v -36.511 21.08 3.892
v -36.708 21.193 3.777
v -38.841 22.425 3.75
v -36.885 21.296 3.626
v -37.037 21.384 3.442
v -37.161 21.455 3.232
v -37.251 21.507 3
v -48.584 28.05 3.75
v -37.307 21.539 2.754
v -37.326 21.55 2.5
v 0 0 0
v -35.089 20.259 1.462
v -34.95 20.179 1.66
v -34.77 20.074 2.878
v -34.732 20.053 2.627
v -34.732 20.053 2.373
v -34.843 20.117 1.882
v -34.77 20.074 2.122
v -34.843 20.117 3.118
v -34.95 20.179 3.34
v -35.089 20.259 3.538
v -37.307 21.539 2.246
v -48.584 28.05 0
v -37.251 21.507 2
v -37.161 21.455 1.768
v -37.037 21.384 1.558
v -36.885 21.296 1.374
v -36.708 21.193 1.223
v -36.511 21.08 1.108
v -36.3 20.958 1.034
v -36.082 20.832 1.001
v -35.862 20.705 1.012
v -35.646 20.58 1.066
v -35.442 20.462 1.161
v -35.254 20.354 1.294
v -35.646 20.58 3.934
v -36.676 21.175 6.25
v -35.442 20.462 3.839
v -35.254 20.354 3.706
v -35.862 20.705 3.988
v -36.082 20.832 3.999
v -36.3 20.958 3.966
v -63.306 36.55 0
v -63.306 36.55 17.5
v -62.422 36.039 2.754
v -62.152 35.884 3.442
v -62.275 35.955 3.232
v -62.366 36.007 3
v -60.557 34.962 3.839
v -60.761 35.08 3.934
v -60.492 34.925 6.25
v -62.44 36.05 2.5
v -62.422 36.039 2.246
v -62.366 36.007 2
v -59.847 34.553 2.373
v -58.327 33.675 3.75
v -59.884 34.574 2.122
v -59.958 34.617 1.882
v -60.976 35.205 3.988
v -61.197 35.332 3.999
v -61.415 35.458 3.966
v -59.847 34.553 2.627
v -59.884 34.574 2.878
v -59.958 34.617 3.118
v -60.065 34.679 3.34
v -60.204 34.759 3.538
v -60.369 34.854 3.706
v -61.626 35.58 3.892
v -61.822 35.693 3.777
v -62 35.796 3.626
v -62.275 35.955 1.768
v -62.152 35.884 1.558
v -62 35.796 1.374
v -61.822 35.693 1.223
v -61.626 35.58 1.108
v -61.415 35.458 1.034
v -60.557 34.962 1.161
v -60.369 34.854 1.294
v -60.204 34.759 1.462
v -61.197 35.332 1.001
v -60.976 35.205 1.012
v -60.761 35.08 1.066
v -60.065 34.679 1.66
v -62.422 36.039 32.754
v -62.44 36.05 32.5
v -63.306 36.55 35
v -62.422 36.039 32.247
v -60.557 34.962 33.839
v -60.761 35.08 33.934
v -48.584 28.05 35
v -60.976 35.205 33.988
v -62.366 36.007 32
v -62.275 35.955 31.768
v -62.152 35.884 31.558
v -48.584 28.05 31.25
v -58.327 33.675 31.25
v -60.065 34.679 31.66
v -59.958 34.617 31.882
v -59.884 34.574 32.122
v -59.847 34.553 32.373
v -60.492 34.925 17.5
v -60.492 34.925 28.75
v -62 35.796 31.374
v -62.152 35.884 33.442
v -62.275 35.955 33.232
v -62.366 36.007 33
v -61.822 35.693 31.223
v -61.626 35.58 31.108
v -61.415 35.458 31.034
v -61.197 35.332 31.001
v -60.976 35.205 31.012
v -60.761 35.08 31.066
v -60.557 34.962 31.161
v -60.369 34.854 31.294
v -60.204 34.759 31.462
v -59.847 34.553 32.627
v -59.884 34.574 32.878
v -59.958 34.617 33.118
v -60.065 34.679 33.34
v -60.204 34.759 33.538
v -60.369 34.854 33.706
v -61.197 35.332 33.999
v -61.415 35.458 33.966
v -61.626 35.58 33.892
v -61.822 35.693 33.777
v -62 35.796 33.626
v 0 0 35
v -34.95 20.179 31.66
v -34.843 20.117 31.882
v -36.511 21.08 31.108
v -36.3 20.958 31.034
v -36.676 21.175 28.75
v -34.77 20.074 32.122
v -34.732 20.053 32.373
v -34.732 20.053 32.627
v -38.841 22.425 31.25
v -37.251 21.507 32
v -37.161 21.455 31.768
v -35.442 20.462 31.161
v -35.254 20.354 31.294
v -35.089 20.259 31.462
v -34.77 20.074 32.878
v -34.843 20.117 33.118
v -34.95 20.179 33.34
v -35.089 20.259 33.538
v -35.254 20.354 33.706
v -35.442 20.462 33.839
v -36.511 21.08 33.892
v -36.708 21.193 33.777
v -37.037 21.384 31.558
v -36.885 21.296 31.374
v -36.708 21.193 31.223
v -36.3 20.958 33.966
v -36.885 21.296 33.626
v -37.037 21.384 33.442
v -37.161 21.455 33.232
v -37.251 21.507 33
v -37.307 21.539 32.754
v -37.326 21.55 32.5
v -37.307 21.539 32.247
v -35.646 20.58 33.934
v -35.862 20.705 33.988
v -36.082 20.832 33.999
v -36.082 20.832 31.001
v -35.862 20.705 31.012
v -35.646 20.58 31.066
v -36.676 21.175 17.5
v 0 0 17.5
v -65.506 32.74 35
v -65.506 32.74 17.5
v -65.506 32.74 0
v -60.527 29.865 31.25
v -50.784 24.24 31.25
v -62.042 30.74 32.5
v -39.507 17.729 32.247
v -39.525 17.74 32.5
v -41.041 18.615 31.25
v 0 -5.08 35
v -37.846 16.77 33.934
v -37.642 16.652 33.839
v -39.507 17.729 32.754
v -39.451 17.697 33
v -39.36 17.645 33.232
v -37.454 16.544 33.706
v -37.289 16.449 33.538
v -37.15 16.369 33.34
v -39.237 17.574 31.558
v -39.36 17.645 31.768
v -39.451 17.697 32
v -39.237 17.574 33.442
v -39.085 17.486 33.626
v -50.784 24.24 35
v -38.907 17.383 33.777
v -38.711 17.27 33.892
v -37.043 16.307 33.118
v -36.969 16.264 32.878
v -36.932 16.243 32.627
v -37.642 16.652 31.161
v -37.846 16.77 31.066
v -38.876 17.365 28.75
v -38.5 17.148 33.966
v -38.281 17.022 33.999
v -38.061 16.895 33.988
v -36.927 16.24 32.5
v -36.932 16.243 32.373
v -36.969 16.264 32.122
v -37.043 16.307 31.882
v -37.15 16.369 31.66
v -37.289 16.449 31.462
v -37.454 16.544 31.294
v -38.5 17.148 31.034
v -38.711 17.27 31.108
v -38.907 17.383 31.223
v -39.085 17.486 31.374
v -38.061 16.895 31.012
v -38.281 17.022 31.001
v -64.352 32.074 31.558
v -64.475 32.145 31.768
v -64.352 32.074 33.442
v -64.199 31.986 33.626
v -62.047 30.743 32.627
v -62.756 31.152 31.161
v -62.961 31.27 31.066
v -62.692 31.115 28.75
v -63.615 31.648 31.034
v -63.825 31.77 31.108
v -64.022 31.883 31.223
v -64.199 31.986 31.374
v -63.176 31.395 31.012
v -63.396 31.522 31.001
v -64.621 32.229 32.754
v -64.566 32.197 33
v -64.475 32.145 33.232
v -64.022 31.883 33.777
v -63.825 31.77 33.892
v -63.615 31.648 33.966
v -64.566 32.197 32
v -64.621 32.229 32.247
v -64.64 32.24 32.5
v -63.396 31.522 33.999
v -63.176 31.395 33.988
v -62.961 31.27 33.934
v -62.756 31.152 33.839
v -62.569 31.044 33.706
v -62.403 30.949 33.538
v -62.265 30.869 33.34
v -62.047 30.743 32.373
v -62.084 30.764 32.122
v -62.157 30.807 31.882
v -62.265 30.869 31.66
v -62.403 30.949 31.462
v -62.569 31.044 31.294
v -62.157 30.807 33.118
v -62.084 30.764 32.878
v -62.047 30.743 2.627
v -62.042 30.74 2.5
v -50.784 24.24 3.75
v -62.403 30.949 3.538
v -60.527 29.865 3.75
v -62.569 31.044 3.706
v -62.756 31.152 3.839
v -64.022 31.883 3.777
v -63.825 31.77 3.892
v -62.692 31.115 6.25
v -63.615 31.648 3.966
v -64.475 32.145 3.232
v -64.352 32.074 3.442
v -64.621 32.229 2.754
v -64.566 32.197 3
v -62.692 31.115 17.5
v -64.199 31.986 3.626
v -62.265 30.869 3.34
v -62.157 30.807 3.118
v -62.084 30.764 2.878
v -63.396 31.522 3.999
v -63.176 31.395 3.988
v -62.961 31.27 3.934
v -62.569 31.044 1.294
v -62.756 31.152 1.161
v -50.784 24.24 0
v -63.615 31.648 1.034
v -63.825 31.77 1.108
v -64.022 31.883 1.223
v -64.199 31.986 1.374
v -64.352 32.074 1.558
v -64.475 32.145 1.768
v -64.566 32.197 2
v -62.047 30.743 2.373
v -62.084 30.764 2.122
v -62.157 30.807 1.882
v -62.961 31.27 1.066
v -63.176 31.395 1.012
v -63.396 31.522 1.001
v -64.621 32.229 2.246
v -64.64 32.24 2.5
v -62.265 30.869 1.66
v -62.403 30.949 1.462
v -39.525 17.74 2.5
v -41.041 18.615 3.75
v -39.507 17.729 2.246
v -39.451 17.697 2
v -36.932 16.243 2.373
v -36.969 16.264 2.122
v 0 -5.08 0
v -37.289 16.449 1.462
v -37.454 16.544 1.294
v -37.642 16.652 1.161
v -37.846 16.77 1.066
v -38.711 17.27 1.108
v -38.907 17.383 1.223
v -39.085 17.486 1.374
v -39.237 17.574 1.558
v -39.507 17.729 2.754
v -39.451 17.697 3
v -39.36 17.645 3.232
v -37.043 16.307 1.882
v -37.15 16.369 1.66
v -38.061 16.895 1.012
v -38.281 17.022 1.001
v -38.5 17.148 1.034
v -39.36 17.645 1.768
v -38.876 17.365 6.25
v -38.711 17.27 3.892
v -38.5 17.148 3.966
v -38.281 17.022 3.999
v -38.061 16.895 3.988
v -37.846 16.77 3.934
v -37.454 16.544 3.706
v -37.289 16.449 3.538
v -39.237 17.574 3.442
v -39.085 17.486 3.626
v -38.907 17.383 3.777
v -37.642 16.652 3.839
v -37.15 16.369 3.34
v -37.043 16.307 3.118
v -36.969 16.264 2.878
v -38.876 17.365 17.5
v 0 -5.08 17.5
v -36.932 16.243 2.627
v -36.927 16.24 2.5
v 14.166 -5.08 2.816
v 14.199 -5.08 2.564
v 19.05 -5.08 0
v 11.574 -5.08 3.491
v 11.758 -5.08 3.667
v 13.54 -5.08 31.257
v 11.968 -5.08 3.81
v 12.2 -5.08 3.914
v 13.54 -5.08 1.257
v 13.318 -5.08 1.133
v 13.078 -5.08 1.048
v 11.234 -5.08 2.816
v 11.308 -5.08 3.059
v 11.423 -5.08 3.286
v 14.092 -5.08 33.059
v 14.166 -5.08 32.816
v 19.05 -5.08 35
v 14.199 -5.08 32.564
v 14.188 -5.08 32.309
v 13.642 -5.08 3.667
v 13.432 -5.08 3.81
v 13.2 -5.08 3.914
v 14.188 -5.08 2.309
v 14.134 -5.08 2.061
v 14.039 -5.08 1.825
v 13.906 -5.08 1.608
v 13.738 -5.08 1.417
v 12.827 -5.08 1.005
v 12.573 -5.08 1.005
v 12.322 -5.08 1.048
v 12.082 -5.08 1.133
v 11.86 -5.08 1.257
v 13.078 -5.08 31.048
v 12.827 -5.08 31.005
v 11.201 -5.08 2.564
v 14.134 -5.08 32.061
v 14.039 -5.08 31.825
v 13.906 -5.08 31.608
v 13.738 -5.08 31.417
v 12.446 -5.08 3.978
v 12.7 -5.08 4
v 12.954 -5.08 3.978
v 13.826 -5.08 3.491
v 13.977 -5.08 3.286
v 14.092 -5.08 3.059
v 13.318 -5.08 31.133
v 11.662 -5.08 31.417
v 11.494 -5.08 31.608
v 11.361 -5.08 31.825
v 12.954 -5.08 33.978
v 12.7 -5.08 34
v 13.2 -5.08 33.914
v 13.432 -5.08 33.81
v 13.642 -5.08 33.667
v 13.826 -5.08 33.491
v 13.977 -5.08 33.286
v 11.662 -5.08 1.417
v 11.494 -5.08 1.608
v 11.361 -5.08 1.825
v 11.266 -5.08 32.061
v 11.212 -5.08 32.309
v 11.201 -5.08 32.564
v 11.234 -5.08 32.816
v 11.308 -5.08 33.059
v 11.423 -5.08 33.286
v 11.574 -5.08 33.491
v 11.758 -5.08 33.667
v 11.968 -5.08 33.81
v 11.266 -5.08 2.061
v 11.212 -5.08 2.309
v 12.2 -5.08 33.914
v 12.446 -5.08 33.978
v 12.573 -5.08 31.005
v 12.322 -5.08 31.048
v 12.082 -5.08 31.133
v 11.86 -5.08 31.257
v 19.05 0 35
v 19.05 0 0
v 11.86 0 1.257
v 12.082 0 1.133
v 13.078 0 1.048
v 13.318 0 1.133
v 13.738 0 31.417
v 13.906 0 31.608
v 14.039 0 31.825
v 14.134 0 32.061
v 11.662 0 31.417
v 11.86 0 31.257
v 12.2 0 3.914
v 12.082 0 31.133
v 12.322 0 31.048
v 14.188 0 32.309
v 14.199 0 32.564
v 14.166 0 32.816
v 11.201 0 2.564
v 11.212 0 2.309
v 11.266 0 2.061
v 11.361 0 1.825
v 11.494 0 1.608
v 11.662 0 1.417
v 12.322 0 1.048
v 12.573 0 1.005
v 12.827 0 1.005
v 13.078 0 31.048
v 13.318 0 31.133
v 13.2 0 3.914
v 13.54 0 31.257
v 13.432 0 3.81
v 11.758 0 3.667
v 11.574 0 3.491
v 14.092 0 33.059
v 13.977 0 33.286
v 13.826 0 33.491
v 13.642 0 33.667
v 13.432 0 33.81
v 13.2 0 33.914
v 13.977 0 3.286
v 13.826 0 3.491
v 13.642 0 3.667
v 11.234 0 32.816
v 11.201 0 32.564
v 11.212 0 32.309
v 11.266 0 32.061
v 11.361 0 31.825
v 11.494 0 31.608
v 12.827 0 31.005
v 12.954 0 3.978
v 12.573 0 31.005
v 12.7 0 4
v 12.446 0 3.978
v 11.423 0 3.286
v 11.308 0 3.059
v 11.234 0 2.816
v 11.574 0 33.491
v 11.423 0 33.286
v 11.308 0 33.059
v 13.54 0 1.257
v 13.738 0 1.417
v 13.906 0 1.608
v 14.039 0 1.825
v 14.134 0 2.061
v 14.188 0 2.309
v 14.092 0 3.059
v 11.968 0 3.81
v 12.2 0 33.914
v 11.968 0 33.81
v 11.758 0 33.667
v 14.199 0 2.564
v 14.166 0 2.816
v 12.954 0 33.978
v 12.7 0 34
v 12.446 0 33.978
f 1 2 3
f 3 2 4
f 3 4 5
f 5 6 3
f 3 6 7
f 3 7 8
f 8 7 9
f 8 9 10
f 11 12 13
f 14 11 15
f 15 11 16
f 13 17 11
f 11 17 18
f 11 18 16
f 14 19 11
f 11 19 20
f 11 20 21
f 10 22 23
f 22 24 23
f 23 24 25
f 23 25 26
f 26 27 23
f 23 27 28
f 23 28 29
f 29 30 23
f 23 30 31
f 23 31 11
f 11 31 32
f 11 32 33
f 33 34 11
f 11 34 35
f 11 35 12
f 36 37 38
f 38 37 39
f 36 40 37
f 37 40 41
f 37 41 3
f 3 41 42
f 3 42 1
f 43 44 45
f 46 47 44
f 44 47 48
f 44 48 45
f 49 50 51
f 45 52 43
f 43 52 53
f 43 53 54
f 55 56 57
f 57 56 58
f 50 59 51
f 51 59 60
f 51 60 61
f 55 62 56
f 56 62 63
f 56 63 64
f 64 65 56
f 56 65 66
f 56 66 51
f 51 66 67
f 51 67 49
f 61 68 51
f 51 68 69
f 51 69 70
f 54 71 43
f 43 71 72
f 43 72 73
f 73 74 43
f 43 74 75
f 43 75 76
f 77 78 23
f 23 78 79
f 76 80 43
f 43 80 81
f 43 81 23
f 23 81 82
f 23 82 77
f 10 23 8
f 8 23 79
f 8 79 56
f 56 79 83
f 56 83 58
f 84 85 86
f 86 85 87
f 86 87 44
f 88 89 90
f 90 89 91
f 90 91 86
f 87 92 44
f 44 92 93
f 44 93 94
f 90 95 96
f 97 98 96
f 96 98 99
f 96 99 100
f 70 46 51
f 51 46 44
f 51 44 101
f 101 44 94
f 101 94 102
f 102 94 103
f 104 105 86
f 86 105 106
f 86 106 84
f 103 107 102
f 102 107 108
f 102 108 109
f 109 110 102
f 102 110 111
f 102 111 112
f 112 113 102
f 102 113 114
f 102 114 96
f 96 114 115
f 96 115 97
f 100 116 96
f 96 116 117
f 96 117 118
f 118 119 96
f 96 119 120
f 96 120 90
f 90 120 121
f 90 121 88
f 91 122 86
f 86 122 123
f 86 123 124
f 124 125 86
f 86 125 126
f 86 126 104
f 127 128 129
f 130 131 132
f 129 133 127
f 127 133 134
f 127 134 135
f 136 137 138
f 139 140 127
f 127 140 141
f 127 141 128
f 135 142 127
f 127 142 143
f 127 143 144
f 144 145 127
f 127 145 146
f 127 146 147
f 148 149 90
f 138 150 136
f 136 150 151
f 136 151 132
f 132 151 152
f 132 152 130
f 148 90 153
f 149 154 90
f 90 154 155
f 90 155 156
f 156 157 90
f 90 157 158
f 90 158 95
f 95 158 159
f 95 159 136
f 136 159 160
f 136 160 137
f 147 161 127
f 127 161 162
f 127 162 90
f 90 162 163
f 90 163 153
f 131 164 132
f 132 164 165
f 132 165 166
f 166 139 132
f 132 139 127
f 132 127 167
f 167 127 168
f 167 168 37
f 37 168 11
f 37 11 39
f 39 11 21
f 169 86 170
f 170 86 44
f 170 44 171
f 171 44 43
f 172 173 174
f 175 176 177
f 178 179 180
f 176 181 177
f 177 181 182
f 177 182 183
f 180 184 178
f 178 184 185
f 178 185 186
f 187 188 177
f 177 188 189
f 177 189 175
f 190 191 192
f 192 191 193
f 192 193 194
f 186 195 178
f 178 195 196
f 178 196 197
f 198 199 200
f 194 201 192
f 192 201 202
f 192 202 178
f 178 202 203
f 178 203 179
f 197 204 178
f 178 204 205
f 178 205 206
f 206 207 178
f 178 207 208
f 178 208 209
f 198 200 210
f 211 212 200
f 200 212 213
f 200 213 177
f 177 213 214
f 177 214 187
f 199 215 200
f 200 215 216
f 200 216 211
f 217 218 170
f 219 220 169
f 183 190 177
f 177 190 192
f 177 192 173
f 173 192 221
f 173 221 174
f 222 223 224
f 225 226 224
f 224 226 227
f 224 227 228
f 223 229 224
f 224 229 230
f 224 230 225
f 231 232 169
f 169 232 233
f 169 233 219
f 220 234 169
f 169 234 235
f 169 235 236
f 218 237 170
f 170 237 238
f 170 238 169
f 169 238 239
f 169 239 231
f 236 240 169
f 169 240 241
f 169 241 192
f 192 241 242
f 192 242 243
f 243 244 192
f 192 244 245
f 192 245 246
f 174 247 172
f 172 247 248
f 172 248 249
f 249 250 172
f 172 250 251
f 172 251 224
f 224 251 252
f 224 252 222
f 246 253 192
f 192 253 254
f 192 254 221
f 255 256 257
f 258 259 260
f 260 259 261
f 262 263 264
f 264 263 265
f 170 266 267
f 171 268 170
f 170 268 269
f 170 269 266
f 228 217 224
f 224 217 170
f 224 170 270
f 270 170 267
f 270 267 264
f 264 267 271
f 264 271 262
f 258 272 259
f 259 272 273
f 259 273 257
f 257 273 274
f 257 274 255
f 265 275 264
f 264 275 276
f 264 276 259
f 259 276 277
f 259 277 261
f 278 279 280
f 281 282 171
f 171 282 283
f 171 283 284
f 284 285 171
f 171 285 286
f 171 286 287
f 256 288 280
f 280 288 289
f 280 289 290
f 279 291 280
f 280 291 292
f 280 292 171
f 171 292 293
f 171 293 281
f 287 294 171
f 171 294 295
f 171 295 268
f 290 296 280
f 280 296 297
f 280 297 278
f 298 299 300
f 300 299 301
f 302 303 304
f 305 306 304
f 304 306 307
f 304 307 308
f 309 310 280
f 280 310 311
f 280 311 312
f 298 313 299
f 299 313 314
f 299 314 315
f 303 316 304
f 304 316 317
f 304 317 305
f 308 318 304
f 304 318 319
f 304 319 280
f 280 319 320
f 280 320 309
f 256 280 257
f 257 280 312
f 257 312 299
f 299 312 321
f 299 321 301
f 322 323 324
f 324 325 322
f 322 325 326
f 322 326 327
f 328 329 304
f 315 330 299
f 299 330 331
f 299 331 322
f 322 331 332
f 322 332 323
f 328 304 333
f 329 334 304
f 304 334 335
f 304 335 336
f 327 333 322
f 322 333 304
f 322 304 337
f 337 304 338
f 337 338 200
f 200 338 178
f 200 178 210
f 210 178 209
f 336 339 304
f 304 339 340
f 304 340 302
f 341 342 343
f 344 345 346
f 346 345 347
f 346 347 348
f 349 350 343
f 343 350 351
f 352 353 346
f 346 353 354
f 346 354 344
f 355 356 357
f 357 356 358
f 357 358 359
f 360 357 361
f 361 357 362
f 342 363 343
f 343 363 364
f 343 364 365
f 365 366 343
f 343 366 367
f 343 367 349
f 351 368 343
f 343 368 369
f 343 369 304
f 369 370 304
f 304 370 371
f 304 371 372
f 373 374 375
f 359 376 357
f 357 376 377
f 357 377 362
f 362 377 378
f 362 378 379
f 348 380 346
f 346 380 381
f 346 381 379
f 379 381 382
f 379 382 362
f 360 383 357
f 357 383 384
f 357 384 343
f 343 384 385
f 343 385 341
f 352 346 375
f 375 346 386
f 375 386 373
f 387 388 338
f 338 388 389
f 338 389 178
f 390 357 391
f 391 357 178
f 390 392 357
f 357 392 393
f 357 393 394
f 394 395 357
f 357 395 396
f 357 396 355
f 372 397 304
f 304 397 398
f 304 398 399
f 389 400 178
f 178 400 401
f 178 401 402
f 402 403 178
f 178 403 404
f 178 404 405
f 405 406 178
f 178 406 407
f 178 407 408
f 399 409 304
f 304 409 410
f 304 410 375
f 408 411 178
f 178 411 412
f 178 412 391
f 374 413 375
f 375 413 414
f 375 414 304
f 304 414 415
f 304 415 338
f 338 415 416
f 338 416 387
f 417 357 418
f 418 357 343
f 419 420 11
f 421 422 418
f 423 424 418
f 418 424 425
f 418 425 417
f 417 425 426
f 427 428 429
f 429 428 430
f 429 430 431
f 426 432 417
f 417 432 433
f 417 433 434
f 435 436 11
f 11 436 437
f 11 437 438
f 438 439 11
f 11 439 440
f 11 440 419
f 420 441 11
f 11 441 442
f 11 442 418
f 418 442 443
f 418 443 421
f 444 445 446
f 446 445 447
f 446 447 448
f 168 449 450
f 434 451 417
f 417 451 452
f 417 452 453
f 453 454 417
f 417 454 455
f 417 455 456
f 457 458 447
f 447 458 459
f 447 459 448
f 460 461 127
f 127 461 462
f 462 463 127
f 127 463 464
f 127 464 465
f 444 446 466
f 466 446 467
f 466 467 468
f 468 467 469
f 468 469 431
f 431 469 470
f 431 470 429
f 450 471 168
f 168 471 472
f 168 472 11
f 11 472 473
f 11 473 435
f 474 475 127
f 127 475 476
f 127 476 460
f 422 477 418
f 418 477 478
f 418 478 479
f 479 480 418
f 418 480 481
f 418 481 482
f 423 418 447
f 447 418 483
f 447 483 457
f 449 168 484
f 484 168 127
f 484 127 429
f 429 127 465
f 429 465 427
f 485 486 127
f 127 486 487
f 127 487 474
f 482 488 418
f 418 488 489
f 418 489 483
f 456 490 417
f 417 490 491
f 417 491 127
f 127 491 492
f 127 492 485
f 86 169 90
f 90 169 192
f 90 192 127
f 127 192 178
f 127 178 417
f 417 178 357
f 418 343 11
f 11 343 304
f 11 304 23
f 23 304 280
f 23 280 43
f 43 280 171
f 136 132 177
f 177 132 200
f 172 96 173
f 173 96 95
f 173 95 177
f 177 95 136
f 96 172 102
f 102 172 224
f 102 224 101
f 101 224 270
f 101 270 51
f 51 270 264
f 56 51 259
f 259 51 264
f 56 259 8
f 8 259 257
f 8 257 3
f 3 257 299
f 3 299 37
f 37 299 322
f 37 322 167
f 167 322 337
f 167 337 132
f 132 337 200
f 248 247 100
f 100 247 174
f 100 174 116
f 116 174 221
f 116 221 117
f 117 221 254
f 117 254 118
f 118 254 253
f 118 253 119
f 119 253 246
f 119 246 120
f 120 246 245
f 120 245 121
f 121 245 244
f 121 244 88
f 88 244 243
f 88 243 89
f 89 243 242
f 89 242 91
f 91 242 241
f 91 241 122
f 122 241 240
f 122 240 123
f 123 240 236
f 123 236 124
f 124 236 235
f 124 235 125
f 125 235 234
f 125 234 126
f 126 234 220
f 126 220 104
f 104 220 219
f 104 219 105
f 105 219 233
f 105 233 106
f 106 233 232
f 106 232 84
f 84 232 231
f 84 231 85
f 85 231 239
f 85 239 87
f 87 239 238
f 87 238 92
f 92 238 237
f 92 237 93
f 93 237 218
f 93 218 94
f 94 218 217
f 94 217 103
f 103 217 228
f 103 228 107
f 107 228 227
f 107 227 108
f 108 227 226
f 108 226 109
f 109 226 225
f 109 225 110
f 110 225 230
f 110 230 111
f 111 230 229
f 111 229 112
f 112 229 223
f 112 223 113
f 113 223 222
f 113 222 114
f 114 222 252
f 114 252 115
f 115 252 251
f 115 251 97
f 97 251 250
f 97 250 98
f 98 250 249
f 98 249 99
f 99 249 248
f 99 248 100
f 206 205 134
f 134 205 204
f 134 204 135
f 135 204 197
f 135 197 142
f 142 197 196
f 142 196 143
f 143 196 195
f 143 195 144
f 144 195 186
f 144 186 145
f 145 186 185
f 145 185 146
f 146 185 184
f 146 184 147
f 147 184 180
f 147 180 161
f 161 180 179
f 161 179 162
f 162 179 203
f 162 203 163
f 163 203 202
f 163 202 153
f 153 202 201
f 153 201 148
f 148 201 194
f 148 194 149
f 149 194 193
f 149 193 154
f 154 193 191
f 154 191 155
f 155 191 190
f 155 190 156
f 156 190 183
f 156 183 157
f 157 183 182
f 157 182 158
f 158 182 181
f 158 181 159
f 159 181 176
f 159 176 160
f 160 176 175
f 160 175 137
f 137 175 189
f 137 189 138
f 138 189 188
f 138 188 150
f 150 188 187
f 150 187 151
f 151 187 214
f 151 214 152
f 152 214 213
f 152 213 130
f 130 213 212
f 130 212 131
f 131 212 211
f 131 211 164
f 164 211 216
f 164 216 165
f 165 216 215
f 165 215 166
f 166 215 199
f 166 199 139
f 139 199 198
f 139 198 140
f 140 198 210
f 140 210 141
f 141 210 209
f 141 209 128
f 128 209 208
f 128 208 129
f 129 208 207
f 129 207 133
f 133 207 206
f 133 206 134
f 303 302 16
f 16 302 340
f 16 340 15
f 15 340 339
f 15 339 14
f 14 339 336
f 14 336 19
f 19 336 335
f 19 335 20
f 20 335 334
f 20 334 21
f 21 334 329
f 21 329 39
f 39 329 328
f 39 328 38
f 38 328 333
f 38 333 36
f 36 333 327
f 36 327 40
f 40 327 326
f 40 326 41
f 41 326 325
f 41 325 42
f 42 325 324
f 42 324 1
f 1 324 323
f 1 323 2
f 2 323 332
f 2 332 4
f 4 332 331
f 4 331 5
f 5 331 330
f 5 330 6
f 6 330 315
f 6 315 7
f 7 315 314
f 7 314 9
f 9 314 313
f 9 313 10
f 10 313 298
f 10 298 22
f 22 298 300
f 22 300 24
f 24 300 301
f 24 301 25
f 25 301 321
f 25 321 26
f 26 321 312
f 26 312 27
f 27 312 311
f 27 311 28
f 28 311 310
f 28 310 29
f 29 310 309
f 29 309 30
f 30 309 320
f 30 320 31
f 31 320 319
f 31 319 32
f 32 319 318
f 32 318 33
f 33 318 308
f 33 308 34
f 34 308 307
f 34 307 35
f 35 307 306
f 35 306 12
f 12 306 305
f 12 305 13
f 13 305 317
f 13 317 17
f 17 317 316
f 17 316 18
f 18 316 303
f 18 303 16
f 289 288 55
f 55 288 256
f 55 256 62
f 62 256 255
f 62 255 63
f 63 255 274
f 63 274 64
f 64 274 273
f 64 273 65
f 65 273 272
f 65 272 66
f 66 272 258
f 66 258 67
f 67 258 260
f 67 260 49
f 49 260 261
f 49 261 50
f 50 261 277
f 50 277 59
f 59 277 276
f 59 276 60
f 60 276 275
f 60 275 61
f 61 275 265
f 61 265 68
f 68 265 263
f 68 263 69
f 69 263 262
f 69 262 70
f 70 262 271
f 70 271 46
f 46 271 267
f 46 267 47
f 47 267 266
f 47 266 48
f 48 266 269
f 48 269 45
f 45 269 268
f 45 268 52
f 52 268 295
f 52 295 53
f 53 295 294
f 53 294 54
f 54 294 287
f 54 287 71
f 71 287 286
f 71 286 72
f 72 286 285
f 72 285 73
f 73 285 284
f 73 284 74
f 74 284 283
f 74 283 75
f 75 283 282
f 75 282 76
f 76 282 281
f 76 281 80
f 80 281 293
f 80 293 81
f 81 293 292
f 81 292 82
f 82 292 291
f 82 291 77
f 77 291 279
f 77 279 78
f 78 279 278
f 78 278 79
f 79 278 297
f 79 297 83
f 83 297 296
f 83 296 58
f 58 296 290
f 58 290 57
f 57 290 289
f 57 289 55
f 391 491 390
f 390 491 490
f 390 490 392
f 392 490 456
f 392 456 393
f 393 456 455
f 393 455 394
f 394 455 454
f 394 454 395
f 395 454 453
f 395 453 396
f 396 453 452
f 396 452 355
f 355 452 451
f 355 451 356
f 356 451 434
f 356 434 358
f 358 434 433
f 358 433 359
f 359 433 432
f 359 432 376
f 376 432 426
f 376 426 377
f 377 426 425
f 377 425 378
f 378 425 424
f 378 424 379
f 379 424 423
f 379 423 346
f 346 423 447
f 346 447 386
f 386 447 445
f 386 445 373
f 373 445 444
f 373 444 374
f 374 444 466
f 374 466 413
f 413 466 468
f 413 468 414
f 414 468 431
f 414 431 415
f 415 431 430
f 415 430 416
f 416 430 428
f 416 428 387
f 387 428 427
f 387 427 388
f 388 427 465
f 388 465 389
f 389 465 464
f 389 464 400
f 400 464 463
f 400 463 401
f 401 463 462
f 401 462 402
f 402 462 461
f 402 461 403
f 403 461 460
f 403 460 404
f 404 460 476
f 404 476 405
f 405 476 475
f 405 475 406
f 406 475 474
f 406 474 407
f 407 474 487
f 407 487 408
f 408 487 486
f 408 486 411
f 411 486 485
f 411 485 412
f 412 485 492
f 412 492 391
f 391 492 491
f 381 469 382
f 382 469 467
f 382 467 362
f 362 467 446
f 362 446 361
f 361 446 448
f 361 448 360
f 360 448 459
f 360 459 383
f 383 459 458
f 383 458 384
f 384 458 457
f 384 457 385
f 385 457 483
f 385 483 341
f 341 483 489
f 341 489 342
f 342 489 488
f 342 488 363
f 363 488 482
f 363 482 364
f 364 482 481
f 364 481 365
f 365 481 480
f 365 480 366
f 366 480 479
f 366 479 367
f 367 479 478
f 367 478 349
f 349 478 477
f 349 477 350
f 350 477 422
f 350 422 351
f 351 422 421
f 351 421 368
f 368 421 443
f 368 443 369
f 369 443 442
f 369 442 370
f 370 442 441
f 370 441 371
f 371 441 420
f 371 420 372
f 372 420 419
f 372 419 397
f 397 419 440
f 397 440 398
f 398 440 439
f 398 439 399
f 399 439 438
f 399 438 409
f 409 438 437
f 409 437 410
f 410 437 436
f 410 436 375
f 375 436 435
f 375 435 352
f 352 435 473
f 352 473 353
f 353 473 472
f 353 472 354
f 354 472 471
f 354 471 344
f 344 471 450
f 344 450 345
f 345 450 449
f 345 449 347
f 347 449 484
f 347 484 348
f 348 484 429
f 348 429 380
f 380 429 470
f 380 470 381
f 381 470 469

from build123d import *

# Parameters (mm, degrees)
SKETCH2_W                       = 19.05
SKETCH2_H                       = 5.08
BOSS_EXTRUDE1_DEPTH             = 35
SKETCH3_W                       = 25
SKETCH3_H                       = 25
CUT_EXTRUDE1_DEPTH              = 38.152489822
F_3_0MM_DOWEL_HOLE1_D           = 3
F_3_0MM_DOWEL_HOLE1_ON_FACE_2_D = 3
F_3_0MM_DOWEL_HOLE1_ON_FACE_3_D = 3
F_3_0MM_DOWEL_HOLE2_D           = 3


with BuildPart() as part:
    # Sketch2 → Boss-Extrude1 (new body)
    with BuildSketch(Plane.XY):
        Polygon((-65.506161542, 32.74), (-63.306457017, 36.55), (-32.995567884, 19.05), (-35.19527241, 15.24), align=None)
        Polygon((-32.995567884, 19.05), (0, 0), (0, -5.08), (-35.19527241, 15.24), align=None)
        with Locations((9.525, -2.54)):
            Rectangle(SKETCH2_W, SKETCH2_H)
    extrude(amount=BOSS_EXTRUDE1_DEPTH)

    # Sketch3 → Cut-Extrude1 (cut, through all)
    with BuildSketch(Plane(origin=(0, 0, 0), x_dir=(0.866025404, -0.5, 0), z_dir=(0.5, 0.866025404, 0))):
        with Locations((-56.1, -17.5)):
            Rectangle(SKETCH3_W, SKETCH3_H)
        Polygon((-67.35, -3.75), (-68.6, -5), (-43.6, -5), (-44.85, -3.75), align=None)
        Polygon((-68.6, -30), (-68.6, -5), (-69.85, -6.25), (-69.85, -28.75), align=None)
        Polygon((-42.35, -6.25), (-43.6, -5), (-43.6, -30), (-42.35, -28.75), align=None)
        Polygon((-43.6, -30), (-68.6, -30), (-67.35, -31.25), (-44.85, -31.25), align=None)
    extrude(amount=-CUT_EXTRUDE1_DEPTH, mode=Mode.SUBTRACT)

    # Ø3.0mm Dowel Hole1 (through all)
    with Locations(Plane(origin=(-61.141393507, 35.3, 2.5), x_dir=(0.866025404, -0.5, 0), z_dir=(0.5, 0.866025404, 0))):
        with Locations((0, 0)):
            Hole(F_3_0MM_DOWEL_HOLE1_D / 2)

    # Ø3.0mm Dowel Hole1 on face 2 (through all)
    with Locations(Plane(origin=(-36.026656797, 20.8, 2.5), x_dir=(0.866025303, -0.500000175, 0), z_dir=(0.500000175, 0.866025303, 0))):
        with Locations((0, 0), (0, -30)):
            Hole(F_3_0MM_DOWEL_HOLE1_ON_FACE_2_D / 2)

    # Ø3.0mm Dowel Hole1 on face 3 (through all)
    with Locations(Plane(origin=(-61.141393507, 35.3, 32.5), x_dir=(0.866025303, -0.500000175, 0), z_dir=(0.500000175, 0.866025303, 0))):
        with Locations((0, 0)):
            Hole(F_3_0MM_DOWEL_HOLE1_ON_FACE_3_D / 2)

    # Ø3.0mm Dowel Hole2 (through all)
    with Locations(Plane(origin=(12.7, 0, 2.5), x_dir=(1, 0, 0), z_dir=(0, 1, 0))):
        with Locations((0, 0), (0, -30)):
            Hole(F_3_0MM_DOWEL_HOLE2_D / 2)


solid = part.part
